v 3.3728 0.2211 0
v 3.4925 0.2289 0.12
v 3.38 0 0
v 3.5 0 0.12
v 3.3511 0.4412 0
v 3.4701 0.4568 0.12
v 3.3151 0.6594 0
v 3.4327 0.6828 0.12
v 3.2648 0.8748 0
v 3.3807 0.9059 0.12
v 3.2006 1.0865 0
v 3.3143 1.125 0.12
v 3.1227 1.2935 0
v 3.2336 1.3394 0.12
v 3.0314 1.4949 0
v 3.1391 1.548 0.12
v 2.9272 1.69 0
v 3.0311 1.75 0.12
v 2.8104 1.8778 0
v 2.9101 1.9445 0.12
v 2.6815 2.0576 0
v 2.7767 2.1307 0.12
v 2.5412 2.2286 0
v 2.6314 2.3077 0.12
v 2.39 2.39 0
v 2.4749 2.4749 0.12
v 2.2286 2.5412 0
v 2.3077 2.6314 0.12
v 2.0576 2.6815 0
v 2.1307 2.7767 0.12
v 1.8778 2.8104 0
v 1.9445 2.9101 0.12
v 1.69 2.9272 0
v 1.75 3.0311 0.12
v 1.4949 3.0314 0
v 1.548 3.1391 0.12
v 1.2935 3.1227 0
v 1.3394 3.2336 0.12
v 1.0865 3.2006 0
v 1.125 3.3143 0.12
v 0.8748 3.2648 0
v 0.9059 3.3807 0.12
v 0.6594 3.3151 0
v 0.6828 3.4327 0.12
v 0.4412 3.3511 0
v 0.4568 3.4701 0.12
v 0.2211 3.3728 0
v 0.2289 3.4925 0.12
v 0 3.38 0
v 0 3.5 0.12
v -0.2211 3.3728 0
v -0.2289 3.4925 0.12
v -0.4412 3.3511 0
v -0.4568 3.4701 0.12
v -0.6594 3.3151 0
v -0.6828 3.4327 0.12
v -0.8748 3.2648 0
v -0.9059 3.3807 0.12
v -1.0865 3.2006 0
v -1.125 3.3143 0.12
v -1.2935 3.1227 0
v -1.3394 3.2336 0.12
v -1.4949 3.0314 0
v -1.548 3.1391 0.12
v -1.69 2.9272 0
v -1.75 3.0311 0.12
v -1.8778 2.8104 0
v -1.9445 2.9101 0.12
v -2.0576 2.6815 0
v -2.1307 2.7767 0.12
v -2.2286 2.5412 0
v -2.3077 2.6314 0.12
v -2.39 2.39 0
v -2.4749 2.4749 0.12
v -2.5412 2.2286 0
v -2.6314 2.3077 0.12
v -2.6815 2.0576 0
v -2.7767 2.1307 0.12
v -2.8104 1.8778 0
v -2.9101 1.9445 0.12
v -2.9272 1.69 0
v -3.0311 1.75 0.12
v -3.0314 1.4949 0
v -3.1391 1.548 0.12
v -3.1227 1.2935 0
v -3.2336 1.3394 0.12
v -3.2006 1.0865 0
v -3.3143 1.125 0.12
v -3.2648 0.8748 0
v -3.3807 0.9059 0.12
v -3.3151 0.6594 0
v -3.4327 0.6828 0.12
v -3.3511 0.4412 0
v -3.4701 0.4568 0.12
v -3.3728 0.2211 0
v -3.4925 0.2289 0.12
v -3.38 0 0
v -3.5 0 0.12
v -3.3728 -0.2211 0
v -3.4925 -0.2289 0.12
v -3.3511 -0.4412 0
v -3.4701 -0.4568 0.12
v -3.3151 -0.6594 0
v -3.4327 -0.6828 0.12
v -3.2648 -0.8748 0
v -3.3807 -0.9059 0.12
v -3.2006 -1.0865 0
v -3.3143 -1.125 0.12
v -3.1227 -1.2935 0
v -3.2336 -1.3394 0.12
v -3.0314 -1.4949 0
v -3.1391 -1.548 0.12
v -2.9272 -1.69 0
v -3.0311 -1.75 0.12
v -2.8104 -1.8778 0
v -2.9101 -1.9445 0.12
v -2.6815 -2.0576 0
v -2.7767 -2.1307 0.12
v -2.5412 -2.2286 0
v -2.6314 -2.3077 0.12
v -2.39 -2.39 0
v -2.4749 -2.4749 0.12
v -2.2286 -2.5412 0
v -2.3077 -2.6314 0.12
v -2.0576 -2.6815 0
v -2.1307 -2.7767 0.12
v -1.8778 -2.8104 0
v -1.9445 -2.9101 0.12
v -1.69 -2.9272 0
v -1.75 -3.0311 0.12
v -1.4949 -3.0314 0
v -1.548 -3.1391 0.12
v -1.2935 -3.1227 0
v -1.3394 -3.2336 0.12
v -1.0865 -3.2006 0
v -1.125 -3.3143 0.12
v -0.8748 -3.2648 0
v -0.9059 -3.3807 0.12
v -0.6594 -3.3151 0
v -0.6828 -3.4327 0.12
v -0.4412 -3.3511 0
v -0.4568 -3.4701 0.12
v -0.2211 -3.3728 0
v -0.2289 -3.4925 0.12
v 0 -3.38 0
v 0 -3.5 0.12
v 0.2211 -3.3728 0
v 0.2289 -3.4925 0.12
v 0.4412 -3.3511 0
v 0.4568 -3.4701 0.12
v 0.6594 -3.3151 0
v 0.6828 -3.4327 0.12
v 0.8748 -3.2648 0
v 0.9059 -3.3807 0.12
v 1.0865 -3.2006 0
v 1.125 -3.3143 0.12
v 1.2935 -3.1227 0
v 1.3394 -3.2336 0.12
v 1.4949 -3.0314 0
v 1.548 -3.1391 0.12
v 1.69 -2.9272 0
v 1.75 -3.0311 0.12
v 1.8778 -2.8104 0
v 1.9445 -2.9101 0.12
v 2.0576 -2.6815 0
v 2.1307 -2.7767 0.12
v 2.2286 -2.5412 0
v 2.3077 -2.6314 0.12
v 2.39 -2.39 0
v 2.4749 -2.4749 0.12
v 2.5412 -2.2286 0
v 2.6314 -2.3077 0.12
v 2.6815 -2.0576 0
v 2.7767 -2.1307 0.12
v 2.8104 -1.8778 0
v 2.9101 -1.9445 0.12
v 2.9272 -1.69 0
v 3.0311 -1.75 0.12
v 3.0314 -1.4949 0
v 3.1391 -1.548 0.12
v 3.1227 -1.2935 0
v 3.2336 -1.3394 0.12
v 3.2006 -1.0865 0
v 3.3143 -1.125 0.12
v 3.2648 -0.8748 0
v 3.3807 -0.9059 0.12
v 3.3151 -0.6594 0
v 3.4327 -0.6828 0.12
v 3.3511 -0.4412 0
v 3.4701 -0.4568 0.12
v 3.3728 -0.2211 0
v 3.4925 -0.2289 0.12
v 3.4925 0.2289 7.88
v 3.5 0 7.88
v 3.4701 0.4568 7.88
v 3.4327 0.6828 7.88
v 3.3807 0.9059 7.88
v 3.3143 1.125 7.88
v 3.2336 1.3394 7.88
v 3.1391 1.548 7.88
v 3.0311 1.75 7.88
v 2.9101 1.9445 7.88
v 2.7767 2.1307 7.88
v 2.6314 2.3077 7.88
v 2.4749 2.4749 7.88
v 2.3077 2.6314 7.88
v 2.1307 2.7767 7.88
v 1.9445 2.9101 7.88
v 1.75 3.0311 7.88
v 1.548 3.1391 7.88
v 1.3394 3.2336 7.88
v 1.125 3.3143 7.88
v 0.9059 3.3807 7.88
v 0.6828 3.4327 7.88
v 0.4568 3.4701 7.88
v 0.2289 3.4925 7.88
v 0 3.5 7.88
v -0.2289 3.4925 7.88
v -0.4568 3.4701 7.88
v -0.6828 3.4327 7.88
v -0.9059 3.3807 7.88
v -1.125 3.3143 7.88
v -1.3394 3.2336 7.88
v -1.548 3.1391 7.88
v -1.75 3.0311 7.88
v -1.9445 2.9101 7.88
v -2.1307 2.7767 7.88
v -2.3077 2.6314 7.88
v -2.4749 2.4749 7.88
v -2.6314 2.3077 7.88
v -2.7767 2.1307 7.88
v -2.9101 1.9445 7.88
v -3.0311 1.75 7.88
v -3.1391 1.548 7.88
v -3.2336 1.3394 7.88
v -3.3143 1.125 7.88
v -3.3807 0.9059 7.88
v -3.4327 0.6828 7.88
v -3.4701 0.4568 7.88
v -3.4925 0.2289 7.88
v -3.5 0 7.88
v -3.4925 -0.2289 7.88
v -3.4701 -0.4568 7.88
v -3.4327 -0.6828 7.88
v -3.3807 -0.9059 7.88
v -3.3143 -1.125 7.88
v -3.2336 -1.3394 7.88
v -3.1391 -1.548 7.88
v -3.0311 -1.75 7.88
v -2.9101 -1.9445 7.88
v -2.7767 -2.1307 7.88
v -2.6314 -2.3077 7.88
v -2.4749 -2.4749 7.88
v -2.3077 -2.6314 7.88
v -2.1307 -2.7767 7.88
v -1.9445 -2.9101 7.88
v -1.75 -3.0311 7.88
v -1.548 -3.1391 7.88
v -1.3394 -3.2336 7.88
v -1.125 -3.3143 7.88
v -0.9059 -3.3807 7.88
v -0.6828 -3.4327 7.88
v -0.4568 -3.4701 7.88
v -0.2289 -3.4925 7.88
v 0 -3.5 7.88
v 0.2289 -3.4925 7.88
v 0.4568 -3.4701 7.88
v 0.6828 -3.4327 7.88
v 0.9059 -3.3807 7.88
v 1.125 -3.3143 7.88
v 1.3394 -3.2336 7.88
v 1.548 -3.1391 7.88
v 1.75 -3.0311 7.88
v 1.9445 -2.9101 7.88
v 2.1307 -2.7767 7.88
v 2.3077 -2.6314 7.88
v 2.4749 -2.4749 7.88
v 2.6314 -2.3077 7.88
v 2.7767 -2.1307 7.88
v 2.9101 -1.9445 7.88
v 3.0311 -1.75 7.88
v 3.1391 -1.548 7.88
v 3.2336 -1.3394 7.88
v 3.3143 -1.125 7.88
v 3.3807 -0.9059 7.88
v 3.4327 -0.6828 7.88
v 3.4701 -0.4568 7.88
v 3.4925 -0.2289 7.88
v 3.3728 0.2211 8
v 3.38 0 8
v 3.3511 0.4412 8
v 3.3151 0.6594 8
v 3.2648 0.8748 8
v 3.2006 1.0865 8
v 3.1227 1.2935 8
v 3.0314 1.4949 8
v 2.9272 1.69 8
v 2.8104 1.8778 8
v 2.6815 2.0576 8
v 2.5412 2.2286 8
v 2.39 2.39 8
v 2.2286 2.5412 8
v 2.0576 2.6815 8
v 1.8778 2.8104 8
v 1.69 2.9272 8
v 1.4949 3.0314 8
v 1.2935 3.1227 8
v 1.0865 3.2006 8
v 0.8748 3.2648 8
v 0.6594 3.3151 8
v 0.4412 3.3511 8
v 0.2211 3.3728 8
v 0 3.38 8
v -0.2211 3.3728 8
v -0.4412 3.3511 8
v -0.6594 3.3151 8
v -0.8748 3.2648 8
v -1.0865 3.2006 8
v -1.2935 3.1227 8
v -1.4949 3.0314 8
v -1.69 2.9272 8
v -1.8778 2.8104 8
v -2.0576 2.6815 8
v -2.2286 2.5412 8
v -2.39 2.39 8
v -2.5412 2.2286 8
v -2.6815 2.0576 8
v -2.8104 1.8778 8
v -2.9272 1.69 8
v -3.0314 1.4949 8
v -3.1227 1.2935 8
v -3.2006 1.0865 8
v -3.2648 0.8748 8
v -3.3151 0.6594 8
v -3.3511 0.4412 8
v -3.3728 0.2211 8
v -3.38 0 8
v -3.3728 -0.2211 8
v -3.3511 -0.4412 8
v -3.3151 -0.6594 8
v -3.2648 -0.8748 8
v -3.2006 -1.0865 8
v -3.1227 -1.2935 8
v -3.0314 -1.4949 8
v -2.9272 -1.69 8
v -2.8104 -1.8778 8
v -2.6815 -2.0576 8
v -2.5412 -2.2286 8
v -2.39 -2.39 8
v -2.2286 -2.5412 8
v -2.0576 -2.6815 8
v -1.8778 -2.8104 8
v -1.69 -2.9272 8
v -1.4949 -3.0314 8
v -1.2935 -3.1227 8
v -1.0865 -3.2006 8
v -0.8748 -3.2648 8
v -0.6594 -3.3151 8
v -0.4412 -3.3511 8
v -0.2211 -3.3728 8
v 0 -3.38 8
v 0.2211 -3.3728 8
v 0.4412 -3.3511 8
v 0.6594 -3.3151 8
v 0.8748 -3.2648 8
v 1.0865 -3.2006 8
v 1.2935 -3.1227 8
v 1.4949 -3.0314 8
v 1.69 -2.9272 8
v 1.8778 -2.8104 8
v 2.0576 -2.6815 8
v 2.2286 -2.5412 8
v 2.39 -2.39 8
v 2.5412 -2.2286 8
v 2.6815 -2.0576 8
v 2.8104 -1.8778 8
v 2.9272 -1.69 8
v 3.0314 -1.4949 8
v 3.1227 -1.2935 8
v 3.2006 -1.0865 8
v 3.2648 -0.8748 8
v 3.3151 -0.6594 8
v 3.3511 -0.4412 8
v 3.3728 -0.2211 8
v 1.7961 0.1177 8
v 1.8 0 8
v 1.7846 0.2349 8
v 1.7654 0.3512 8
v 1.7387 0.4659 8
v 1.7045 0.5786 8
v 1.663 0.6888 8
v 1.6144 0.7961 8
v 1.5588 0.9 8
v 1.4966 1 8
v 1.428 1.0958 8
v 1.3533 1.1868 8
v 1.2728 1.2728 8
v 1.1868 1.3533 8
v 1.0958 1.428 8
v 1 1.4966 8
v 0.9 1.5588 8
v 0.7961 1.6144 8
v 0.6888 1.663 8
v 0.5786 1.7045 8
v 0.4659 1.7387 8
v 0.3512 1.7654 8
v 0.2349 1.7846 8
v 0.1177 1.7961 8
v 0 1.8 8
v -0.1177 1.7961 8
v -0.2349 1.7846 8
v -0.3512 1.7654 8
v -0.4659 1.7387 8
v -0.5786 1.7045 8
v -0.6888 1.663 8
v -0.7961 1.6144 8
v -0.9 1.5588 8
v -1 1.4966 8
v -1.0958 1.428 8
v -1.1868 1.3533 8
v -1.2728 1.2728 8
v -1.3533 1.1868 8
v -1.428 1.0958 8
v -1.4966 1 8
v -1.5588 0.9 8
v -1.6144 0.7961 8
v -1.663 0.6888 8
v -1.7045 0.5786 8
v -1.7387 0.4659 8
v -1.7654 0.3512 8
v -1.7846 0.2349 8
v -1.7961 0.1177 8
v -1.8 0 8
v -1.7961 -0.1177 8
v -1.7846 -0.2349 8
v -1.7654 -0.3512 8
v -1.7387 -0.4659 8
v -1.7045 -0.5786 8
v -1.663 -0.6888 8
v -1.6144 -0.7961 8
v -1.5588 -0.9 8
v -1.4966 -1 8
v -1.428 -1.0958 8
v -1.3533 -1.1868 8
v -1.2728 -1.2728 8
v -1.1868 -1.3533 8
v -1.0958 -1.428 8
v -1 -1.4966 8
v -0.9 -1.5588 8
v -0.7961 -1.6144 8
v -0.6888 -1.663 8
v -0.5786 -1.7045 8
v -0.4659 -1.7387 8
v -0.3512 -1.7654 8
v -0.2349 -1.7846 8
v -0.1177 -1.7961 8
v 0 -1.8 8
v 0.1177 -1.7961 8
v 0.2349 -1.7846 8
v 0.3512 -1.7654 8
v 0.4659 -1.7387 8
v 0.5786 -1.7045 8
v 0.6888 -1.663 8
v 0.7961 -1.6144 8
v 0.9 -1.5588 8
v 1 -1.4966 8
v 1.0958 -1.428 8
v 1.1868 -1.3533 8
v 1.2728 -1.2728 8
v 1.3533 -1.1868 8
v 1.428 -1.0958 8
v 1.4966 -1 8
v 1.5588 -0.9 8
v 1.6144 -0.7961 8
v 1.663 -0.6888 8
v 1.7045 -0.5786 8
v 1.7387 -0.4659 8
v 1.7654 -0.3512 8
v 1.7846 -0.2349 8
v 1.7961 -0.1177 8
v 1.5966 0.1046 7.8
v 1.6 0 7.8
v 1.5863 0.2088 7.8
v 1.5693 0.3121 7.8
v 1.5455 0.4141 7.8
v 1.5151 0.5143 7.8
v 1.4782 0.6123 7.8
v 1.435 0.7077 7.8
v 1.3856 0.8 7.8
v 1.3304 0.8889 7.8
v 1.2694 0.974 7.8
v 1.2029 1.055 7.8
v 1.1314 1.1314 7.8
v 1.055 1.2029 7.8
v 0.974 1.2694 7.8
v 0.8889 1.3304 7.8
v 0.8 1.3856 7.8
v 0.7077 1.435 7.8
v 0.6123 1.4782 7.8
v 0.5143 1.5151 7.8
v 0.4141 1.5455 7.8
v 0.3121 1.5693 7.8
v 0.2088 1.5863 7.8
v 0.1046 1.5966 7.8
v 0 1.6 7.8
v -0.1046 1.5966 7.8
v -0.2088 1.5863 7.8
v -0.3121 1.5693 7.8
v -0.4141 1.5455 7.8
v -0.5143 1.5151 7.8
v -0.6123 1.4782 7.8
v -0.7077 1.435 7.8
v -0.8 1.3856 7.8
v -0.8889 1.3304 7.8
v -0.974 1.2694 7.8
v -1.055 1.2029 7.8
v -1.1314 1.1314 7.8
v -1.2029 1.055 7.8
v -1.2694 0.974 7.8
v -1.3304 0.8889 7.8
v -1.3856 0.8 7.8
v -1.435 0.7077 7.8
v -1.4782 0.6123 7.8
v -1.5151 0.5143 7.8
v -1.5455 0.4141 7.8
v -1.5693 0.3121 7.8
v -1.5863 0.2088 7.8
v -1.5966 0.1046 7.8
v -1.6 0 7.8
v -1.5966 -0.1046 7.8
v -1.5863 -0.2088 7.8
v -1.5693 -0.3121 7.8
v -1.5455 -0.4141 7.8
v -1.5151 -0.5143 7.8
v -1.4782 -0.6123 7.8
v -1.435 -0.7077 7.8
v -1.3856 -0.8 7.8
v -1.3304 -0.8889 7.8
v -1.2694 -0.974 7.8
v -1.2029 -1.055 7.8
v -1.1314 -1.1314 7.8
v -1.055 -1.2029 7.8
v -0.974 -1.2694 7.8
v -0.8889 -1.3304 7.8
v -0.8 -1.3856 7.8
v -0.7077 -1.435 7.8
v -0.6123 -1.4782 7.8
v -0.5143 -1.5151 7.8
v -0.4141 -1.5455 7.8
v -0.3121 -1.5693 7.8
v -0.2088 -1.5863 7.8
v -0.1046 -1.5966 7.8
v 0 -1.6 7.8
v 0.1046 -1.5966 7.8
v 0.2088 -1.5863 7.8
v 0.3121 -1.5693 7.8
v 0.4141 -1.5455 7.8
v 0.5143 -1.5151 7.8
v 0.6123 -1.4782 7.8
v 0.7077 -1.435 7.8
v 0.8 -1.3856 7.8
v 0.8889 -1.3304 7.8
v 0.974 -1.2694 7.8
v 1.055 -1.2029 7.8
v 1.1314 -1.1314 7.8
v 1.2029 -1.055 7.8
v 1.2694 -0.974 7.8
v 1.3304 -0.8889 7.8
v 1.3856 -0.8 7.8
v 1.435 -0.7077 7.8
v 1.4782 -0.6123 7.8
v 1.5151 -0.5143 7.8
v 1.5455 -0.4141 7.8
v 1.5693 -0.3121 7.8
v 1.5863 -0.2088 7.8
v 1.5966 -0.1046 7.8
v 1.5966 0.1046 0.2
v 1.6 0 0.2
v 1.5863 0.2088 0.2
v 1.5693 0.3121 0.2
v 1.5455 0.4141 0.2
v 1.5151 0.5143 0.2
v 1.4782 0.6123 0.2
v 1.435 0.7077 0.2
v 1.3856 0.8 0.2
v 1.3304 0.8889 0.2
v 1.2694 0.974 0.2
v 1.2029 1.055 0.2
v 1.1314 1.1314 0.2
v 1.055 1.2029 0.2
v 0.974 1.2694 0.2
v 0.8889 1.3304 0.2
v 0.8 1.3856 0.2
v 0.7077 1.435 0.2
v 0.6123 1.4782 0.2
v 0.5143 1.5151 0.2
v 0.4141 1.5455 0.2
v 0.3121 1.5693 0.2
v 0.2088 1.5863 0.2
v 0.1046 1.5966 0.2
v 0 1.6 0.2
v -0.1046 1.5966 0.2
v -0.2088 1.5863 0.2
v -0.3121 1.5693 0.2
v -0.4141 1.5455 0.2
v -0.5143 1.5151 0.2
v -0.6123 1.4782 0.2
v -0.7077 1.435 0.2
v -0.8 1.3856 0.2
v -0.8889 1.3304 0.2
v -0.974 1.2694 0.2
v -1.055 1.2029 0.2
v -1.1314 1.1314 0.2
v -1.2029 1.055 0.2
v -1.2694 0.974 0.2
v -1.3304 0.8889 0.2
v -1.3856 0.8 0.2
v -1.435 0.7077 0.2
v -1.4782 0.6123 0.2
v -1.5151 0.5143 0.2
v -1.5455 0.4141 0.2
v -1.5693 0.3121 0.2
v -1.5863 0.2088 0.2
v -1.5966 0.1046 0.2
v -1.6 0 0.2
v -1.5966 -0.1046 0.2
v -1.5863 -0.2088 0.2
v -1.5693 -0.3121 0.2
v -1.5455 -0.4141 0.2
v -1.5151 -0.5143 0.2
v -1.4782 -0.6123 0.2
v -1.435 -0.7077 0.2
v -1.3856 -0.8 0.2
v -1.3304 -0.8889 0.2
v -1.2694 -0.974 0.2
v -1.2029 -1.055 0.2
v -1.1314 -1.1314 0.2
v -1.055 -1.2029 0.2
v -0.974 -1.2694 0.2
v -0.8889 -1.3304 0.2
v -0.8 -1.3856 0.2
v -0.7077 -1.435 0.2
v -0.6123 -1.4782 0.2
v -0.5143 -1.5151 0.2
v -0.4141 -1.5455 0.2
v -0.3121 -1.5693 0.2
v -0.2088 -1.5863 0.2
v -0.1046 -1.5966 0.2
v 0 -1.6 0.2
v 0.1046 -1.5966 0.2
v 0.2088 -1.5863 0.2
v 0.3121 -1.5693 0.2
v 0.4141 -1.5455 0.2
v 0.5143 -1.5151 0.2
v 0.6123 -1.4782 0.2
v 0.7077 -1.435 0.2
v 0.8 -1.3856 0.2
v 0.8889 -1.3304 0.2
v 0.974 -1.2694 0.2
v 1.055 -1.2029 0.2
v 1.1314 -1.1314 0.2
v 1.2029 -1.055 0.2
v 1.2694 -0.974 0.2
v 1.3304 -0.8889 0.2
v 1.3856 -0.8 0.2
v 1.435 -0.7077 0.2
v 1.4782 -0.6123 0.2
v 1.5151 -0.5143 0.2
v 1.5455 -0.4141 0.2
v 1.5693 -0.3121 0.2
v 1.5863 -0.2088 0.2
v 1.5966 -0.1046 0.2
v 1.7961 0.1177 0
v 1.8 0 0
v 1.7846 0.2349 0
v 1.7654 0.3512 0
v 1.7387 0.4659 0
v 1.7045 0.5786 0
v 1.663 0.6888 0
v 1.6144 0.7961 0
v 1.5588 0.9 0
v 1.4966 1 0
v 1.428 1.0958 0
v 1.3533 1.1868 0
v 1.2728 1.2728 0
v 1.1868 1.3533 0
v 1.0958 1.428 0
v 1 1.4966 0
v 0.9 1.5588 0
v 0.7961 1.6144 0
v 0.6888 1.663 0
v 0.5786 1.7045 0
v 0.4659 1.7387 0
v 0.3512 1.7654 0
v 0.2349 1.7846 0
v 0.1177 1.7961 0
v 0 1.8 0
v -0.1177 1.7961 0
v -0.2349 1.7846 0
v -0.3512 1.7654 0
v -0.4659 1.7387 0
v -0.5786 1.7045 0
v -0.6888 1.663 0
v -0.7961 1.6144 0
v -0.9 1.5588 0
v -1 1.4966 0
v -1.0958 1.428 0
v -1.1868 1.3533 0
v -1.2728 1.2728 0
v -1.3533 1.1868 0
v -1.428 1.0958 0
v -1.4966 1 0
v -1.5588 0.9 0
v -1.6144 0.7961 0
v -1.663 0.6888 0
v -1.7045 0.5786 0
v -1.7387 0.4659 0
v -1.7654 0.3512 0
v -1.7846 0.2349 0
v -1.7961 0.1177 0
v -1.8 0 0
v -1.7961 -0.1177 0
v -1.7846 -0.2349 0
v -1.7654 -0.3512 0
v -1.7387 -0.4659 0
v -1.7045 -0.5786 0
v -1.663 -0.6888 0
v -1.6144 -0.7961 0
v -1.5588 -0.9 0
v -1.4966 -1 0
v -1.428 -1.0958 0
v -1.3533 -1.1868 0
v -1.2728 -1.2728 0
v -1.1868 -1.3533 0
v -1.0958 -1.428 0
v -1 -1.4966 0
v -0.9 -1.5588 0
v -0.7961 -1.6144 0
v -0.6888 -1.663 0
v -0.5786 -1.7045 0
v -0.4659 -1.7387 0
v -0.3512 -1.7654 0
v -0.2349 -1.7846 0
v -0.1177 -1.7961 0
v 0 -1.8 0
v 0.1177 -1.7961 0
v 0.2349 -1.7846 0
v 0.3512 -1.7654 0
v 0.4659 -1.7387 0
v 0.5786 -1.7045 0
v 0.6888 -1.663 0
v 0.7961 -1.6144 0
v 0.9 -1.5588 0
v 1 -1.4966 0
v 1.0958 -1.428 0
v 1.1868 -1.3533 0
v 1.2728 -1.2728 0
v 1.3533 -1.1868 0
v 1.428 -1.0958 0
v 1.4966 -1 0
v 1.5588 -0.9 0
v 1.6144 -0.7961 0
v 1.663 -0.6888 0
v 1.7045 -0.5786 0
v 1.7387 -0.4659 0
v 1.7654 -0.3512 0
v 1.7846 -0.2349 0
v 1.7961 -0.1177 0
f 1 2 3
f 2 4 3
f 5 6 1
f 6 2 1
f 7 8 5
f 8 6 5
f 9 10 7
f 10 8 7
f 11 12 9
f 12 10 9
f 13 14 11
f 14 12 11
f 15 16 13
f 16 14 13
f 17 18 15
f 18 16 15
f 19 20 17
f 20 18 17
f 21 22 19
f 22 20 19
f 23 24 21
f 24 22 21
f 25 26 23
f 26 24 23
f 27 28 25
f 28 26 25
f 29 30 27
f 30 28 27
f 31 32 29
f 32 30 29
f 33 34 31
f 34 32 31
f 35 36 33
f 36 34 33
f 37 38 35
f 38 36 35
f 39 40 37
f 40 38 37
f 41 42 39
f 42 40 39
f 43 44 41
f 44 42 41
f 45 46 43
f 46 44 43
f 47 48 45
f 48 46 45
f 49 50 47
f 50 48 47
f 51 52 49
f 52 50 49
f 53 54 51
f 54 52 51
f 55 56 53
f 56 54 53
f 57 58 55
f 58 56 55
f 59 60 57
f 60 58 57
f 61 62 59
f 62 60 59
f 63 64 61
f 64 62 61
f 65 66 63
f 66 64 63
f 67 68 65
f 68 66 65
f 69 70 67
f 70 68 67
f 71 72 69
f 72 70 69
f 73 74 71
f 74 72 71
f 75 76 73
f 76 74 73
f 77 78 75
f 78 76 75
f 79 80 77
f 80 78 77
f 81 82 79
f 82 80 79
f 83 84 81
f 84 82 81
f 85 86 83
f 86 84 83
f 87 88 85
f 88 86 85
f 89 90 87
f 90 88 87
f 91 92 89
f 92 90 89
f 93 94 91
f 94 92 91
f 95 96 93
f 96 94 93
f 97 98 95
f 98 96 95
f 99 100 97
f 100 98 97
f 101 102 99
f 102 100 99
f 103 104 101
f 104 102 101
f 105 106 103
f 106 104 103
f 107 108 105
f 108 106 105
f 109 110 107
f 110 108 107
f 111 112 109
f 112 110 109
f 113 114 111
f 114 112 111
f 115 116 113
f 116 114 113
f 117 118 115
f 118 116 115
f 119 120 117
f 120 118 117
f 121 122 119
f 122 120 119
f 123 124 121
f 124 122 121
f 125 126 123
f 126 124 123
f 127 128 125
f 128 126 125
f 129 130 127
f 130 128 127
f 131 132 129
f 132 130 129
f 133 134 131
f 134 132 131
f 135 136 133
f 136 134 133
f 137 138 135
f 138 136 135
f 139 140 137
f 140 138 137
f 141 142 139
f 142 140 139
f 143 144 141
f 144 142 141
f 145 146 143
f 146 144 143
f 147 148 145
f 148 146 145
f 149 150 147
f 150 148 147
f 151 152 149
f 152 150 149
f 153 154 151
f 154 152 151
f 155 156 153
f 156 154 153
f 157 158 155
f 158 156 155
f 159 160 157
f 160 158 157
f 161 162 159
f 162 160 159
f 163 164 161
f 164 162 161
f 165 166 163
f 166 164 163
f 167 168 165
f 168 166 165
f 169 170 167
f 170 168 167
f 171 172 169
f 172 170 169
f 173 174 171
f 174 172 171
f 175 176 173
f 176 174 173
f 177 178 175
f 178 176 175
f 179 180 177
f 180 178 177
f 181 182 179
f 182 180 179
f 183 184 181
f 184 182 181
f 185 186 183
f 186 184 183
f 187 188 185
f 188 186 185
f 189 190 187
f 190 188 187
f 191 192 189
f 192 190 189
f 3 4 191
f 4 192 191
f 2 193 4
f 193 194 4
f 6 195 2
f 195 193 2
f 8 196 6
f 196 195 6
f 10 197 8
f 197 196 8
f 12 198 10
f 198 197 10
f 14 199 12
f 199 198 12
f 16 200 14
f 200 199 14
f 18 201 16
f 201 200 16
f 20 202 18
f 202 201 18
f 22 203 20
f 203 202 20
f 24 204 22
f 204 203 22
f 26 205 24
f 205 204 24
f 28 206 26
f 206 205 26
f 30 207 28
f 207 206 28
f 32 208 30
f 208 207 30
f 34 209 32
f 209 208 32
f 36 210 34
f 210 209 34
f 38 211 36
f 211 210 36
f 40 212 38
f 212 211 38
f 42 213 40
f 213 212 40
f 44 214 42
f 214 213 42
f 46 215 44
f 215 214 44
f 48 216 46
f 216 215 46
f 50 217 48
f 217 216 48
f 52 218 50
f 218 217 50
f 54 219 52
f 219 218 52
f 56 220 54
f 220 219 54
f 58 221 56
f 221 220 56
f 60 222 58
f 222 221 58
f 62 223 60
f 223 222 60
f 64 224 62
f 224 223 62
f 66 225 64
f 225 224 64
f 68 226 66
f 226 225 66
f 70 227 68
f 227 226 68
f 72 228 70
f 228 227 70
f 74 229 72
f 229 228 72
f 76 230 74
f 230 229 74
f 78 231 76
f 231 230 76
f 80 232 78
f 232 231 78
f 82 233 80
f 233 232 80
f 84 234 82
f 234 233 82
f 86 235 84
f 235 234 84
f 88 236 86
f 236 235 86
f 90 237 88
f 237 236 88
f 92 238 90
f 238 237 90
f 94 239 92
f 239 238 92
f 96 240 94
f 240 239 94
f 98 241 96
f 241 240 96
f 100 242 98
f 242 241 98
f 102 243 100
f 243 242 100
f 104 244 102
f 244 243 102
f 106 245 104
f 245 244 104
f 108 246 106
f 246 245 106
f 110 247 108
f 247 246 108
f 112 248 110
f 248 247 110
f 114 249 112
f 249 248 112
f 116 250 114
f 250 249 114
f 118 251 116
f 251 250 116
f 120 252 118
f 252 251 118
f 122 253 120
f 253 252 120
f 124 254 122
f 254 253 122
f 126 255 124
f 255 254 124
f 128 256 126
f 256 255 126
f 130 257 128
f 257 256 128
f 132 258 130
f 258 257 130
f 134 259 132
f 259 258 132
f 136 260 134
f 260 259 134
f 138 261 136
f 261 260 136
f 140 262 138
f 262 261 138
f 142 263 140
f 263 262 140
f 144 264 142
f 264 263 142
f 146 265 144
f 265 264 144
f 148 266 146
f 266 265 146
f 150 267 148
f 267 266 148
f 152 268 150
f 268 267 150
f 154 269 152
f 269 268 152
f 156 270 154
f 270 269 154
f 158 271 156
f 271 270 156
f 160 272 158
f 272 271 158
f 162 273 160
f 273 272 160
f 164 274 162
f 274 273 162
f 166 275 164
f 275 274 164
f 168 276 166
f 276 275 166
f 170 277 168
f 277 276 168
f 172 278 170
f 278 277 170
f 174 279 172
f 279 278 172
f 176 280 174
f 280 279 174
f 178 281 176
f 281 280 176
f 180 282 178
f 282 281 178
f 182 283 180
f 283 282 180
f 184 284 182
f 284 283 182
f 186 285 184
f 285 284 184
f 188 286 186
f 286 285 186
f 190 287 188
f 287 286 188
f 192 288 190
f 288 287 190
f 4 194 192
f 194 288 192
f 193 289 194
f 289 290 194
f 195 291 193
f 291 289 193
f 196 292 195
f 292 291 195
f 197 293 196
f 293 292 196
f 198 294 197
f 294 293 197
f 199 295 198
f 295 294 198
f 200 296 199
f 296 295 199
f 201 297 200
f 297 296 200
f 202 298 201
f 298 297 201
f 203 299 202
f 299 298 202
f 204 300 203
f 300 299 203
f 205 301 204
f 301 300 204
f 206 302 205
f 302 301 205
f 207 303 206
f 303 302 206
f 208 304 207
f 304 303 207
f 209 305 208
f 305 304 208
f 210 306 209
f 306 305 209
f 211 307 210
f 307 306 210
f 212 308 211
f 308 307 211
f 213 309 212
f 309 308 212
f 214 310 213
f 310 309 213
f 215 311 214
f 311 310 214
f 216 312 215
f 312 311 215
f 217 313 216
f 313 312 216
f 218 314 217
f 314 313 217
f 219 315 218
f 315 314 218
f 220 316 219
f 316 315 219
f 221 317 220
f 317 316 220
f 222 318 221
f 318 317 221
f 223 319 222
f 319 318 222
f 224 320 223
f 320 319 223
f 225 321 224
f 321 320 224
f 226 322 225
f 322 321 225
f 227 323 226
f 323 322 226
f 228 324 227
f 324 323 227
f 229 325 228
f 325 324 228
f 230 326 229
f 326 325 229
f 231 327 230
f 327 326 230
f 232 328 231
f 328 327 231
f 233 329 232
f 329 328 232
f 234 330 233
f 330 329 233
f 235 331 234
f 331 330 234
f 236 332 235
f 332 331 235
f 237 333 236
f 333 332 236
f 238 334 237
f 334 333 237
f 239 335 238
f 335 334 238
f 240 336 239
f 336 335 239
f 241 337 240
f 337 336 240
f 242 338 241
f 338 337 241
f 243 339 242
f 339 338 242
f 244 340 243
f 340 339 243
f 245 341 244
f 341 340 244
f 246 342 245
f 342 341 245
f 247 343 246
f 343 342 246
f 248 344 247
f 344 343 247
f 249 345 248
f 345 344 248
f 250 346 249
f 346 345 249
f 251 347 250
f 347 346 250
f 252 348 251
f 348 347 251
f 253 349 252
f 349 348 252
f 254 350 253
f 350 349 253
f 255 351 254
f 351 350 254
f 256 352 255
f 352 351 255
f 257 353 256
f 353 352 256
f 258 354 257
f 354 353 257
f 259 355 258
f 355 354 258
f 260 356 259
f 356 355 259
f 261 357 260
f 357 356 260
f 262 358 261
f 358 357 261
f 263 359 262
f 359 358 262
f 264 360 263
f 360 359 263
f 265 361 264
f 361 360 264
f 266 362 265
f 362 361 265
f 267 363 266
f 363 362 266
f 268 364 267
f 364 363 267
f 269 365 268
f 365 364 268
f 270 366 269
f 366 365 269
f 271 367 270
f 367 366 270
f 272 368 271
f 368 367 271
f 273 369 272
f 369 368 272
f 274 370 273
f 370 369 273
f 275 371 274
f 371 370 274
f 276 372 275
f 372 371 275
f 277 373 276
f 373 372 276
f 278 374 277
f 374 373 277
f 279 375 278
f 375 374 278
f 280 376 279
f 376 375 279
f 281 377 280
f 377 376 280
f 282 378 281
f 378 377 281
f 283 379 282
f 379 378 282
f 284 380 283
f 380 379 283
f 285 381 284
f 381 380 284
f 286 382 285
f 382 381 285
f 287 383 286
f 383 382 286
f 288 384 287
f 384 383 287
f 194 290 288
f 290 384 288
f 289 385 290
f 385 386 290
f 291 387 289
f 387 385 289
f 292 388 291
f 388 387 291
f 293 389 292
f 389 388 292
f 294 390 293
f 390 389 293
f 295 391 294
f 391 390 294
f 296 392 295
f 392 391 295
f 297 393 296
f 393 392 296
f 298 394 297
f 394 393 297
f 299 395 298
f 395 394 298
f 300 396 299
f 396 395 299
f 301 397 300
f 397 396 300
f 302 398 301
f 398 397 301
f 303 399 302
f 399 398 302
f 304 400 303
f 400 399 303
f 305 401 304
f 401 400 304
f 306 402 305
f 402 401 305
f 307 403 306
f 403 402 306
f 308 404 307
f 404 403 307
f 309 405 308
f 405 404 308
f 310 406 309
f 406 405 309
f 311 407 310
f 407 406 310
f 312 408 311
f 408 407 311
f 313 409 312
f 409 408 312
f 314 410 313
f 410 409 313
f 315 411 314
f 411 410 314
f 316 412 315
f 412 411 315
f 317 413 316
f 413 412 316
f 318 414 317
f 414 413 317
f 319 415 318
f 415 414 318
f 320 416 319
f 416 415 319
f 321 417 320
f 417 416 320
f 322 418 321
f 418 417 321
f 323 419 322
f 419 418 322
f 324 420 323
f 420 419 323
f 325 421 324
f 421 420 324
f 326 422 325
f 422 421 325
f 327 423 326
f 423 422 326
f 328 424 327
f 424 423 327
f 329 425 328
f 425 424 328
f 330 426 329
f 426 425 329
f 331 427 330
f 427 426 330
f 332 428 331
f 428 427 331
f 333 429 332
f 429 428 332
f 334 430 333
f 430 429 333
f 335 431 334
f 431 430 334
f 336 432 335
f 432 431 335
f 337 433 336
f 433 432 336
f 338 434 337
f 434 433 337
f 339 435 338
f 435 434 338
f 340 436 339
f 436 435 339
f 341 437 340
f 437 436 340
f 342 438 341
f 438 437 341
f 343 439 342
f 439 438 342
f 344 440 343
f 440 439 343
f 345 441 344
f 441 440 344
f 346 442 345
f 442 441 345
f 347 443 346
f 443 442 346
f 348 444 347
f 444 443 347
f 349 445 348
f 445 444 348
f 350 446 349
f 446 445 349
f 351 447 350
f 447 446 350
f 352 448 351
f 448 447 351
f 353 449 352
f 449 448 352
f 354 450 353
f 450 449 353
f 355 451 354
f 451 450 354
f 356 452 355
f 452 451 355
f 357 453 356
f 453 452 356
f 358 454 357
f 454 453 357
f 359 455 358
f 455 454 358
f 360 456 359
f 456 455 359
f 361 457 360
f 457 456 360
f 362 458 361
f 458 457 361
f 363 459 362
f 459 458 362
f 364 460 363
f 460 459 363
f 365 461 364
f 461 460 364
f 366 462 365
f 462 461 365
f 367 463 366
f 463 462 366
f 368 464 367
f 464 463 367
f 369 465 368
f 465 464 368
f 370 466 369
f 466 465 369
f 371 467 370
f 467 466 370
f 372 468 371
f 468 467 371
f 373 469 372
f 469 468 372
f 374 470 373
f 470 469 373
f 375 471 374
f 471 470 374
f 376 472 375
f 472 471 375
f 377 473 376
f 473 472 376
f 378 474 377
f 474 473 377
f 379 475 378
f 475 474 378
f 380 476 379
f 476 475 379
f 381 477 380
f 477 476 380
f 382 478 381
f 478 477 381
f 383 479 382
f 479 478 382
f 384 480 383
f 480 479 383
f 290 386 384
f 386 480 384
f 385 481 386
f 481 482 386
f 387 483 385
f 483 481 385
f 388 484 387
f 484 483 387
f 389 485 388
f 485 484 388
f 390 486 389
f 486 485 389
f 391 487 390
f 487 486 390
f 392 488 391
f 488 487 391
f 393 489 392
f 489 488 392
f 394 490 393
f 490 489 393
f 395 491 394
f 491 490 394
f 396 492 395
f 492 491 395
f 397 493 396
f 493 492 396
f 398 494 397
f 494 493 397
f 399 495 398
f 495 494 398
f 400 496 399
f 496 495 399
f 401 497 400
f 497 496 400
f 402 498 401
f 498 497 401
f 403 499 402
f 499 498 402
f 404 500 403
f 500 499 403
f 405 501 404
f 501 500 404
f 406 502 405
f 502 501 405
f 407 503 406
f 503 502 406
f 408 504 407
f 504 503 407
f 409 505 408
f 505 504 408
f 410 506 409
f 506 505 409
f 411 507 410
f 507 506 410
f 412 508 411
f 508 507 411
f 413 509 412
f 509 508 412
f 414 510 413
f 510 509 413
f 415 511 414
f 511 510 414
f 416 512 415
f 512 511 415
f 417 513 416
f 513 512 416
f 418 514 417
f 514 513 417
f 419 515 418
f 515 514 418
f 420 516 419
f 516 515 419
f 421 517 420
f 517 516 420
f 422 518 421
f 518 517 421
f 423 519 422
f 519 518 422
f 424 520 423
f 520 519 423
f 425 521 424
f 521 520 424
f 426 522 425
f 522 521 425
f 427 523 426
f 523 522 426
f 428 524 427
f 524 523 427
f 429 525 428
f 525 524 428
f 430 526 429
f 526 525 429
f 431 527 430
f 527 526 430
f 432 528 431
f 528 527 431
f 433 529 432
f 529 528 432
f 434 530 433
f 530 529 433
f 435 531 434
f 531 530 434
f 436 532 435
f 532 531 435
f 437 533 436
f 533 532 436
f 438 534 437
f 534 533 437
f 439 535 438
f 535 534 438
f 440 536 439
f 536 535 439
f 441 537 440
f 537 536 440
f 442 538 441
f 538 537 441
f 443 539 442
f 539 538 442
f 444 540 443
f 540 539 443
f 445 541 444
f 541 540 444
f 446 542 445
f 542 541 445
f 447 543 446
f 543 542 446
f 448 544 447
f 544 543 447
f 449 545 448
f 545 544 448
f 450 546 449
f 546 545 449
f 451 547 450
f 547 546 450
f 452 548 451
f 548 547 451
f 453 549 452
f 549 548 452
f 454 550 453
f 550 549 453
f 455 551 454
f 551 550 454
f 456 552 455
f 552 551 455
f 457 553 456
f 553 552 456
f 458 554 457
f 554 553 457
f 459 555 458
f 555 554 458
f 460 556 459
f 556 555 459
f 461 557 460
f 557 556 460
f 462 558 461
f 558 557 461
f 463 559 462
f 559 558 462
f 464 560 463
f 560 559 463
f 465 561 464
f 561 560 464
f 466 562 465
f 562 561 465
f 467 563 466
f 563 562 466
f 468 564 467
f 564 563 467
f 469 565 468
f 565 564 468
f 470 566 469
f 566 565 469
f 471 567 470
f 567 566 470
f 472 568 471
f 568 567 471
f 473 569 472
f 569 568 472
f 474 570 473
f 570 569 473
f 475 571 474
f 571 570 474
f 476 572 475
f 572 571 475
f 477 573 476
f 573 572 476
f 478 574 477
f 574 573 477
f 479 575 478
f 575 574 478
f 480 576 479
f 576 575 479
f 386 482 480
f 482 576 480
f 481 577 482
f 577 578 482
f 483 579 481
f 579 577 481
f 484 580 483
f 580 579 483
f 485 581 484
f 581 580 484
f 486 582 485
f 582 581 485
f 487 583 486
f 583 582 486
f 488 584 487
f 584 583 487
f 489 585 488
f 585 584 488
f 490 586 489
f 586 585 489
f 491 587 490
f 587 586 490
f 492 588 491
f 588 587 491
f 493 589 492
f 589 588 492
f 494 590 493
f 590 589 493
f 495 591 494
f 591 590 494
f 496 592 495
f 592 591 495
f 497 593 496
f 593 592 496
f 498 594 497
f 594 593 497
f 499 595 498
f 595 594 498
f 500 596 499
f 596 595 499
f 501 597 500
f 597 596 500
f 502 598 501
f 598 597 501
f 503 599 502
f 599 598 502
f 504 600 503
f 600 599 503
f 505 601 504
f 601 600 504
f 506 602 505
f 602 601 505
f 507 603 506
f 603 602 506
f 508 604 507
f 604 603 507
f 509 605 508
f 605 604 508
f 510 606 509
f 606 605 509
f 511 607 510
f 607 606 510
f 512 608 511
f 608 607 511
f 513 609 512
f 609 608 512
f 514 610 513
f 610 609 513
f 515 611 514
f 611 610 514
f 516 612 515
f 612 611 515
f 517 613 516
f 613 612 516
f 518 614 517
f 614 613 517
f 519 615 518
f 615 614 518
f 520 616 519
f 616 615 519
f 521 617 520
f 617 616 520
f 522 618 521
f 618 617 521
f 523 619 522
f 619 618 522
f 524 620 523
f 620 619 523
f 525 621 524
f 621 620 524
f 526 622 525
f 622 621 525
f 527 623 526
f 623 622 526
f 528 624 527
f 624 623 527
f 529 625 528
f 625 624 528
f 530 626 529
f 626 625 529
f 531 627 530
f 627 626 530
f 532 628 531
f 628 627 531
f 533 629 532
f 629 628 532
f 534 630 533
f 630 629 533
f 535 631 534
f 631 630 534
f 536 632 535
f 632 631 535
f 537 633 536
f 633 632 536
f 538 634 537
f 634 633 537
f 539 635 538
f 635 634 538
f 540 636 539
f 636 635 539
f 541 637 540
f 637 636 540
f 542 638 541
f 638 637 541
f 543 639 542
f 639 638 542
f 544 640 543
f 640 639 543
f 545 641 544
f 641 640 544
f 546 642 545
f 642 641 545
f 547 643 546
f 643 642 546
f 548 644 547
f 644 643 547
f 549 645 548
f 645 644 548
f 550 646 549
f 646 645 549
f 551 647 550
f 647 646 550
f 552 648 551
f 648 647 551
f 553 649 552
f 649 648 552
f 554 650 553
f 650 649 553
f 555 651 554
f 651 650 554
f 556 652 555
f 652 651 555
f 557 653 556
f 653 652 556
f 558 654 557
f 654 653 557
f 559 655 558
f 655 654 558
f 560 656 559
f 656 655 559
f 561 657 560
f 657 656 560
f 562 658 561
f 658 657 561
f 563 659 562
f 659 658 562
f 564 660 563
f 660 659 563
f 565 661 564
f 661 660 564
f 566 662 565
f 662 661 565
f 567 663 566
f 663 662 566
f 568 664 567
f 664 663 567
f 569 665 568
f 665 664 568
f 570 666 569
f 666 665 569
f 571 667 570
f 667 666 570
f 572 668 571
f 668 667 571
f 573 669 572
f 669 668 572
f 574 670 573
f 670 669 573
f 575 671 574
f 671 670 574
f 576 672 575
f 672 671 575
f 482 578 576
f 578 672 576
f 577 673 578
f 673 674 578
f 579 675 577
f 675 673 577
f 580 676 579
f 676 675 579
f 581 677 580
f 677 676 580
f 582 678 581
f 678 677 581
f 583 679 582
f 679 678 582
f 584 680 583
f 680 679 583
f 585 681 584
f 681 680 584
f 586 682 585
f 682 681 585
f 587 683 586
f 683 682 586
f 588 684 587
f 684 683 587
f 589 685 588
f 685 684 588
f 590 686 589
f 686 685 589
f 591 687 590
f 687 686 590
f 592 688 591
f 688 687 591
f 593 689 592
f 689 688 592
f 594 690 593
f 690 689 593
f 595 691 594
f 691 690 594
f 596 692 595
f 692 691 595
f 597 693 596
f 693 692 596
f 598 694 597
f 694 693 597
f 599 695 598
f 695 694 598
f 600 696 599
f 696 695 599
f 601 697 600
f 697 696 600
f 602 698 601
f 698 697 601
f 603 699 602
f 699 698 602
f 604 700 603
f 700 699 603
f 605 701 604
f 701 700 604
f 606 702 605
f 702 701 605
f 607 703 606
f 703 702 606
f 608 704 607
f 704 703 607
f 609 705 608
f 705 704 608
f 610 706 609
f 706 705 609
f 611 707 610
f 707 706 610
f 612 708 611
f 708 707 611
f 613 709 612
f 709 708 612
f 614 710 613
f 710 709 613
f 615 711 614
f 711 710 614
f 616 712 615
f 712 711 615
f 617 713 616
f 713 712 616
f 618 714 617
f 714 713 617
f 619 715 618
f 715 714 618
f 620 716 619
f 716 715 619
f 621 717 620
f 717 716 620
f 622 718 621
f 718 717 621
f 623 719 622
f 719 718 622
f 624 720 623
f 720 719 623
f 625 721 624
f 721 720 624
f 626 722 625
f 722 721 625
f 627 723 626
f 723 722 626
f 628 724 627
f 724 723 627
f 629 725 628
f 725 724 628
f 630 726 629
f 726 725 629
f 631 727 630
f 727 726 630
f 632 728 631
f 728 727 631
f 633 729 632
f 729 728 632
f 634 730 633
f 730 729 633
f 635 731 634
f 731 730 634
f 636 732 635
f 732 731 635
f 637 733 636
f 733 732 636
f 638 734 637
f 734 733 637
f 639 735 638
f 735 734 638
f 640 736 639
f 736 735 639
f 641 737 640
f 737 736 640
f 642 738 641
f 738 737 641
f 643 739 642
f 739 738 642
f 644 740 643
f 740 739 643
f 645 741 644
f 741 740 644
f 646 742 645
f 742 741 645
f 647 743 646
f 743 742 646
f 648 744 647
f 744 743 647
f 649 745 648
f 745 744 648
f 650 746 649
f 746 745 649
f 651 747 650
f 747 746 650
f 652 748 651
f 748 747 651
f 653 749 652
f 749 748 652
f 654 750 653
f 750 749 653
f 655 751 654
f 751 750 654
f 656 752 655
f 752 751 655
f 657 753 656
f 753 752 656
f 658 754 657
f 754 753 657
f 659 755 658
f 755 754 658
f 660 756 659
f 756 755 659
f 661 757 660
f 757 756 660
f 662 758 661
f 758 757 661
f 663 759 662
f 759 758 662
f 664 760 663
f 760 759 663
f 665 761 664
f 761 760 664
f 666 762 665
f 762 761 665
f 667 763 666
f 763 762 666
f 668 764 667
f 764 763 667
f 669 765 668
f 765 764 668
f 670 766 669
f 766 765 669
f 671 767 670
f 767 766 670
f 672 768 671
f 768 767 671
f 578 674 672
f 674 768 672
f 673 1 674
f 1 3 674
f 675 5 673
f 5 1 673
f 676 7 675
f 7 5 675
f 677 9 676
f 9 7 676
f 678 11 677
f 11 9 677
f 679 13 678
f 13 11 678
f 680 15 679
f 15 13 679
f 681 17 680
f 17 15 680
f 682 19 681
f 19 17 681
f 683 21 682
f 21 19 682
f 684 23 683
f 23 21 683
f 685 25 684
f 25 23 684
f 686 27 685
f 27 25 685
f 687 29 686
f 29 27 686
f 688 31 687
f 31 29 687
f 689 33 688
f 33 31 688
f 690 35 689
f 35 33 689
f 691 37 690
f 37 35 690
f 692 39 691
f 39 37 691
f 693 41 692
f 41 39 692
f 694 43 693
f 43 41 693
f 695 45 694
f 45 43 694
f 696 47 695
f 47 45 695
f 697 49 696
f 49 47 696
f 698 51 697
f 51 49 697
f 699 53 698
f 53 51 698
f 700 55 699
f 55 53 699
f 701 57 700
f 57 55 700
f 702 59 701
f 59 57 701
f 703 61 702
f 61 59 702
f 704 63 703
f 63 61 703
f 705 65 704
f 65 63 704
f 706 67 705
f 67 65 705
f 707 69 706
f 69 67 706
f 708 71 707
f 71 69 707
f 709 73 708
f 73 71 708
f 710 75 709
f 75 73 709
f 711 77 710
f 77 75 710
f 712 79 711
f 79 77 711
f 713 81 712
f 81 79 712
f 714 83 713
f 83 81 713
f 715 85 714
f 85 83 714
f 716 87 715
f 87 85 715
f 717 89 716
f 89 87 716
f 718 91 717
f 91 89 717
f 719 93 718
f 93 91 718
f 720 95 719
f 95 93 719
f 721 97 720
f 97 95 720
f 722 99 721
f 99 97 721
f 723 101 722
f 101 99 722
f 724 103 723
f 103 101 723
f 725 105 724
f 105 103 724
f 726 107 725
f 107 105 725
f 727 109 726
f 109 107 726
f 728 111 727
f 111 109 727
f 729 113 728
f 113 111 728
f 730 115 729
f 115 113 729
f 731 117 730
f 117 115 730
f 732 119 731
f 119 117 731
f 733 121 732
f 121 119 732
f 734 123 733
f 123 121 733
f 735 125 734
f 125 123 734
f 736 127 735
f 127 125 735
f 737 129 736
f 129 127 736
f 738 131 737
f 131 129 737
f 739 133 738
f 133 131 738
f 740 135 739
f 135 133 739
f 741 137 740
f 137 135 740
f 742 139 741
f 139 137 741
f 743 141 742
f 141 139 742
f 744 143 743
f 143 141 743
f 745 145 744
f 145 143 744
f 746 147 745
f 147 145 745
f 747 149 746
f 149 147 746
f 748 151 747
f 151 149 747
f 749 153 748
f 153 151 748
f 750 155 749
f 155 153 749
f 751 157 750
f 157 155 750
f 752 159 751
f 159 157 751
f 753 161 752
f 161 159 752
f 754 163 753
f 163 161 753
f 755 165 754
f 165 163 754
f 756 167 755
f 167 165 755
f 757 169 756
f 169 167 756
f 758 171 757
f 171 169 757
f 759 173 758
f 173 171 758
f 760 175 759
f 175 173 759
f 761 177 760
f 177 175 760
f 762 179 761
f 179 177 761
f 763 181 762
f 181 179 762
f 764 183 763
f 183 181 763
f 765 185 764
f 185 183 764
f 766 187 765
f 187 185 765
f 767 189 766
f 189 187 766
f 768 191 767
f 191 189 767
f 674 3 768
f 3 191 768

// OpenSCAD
// OOMP generic catalogue model; units: mm.
// Stud length is additional to body depth. Tapping depths are model assumptions.
variant = "full"; // [full, display]
family = "spacer";
connection_type = "plain";
depth_mm = 8;
stud_length_mm = 0;
tapped_depth_mm = 0;
bore_mm = 3.2;
outer_diameter_mm = 7;
across_flats_mm = 6;
thread_nominal_diameter_mm = 3;
thread_pitch_mm = 0.5;
edge_chamfer_mm = 0.12;
mouth_chamfer_mm = 0.2;
angular_segments = 96;
samples_per_pitch = 16;

// Boundary travels up the outside, then down any tapped/plain bore.
// Equal-height rings at shoulders form the annular shoulder faces.
n = angular_segments;
threaded = family == "standoff";
has_stud = connection_type == "stud_to_tapped" || connection_type == "stud_to_stud";
two_studs = connection_type == "stud_to_stud";
through = !threaded || connection_type == "tapped_to_tapped";
pitch = thread_pitch_mm;
diameter = threaded ? thread_nominal_diameter_mm : bore_mm;
minor = diameter - 5*sqrt(3)*pitch/8;
transition = mouth_chamfer_mm + (threaded ? 5*sqrt(3)*pitch/16 : 0);
tip_chamfer = mouth_chamfer_mm + 17*sqrt(3)*pitch/48;
function sorted(v) = len(v)<=1 ? v : let(p=v[0])
    concat(sorted([for(x=v) if(x<p-1e-8) x]), [p], sorted([for(x=v) if(x>p+1e-8) x]));
function reverse(v) = [for(i=[len(v)-1:-1:0]) v[i]];
function theta(i) = i*360/n;
function fract(x) = x-floor(x);
function phase_distance(i,z) = abs(fract(z/pitch-theta(i)/360+0.5)-0.5);
function thread_r(i,z) = minor/2 + min(5*sqrt(3)*pitch/16,
    max(0,(phase_distance(i,z)-0.125)*pitch*sqrt(3)));
function stud_r(i,z,tip) = min(diameter/2 - (variant=="full" ?
    min(17*sqrt(3)*pitch/48,max(0,(phase_distance(i,z)-0.0625)*pitch*sqrt(3))) : 0),
    diameter/2-tip_chamfer+abs(z-tip));
function body_r(i,z) = (threaded ? across_flats_mm/2/cos(theta(i)%60-30) : outer_diameter_mm/2)
    - max(0,edge_chamfer_mm-min(z,depth_mm-z));
function bore_r(i,z) = max(threaded ? (variant=="full" ? thread_r(i,z) : minor/2) : diameter/2,
    diameter/2+mouth_chamfer_mm-(through ? min(z,depth_mm-z) : depth_mm-z));
function stud_z(a,b,tip) = let(count=variant=="full" ? ceil(stud_length_mm/pitch*samples_per_pitch) : 1)
    sorted(concat([for(i=[0:count]) a+(b-a)*i/count], [tip==a ? tip+tip_chamfer : tip-tip_chamfer]));
body_z = sorted([0,edge_chamfer_mm,depth_mm-edge_chamfer_mm,depth_mm]);
low = through ? 0 : depth_mm-tapped_depth_mm;
count = threaded && variant=="full" ? ceil((depth_mm-low)/pitch*samples_per_pitch) : 1;
bore_z = two_studs ? [] : reverse(sorted(concat(
    [for(i=[0:count]) low+(depth_mm-low)*i/count],
    [depth_mm-mouth_chamfer_mm,depth_mm-transition],
    through ? [mouth_chamfer_mm,transition] : [])));
// Ring descriptors: [height, kind, tip]. Kind: 0 body, 1 stud, 2 bore.
rings = concat(
    has_stud ? [for(z=stud_z(-stud_length_mm,0,-stud_length_mm)) [z,1,-stud_length_mm]] : [],
    [for(z=body_z) [z,0,0]],
    two_studs ? [for(z=stud_z(depth_mm,depth_mm+stud_length_mm,depth_mm+stud_length_mm)) [z,1,depth_mm+stud_length_mm]] : [],
    [for(z=bore_z) [z,2,0]]);
function radius(i,ring) = ring[1]==0 ? body_r(i,ring[0]) :
    ring[1]==1 ? stud_r(i,ring[0],ring[2]) : bore_r(i,ring[0]);
points = concat([for(ring=rings) for(i=[0:n-1])
    [radius(i,ring)*cos(theta(i)),radius(i,ring)*sin(theta(i)),ring[0]]],
    through ? [] : [[0,0,rings[0][0]],[0,0,rings[len(rings)-1][0]]]);
center = len(rings)*n;
last = (len(rings)-1)*n;
// OpenSCAD winding is opposite to STL winding.
faces = concat(
    [for(j=[0:len(rings)-(through ? 1 : 2)]) for(i=[0:n-1]) each
        let(a=j*n+i,b=j*n+(i+1)%n,c=((j+1)%len(rings))*n+(i+1)%n,d=((j+1)%len(rings))*n+i)
        [[a,c,b],[a,d,c]]],
    through ? [] : [for(i=[0:n-1]) each let(k=(i+1)%n)
        [[center,i,k],[center+1,last+k,last+i]]]);
assert(family=="spacer" || family=="standoff");
assert(!threaded || connection_type=="tapped_to_tapped" || has_stud);
assert(depth_mm>0 && diameter>0 && pitch>0);
assert(variant=="full" || variant=="display");
assert(n>=24 && n%12==0 && samples_per_pitch>=8);
assert(mouth_chamfer_mm>0 && mouth_chamfer_mm<depth_mm/2);
assert(edge_chamfer_mm>=0 && edge_chamfer_mm<depth_mm/2);
assert(diameter+4*max(mouth_chamfer_mm,edge_chamfer_mm) < (threaded ? across_flats_mm : outer_diameter_mm));
assert(!has_stud || stud_length_mm>2*mouth_chamfer_mm);
assert(!through || !threaded || 2*transition<depth_mm);
assert(connection_type!="stud_to_tapped" || (tapped_depth_mm>transition && tapped_depth_mm<depth_mm));
color([0.86,0.85,0.81]) polyhedron(points=points,faces=faces,convexity=20);
